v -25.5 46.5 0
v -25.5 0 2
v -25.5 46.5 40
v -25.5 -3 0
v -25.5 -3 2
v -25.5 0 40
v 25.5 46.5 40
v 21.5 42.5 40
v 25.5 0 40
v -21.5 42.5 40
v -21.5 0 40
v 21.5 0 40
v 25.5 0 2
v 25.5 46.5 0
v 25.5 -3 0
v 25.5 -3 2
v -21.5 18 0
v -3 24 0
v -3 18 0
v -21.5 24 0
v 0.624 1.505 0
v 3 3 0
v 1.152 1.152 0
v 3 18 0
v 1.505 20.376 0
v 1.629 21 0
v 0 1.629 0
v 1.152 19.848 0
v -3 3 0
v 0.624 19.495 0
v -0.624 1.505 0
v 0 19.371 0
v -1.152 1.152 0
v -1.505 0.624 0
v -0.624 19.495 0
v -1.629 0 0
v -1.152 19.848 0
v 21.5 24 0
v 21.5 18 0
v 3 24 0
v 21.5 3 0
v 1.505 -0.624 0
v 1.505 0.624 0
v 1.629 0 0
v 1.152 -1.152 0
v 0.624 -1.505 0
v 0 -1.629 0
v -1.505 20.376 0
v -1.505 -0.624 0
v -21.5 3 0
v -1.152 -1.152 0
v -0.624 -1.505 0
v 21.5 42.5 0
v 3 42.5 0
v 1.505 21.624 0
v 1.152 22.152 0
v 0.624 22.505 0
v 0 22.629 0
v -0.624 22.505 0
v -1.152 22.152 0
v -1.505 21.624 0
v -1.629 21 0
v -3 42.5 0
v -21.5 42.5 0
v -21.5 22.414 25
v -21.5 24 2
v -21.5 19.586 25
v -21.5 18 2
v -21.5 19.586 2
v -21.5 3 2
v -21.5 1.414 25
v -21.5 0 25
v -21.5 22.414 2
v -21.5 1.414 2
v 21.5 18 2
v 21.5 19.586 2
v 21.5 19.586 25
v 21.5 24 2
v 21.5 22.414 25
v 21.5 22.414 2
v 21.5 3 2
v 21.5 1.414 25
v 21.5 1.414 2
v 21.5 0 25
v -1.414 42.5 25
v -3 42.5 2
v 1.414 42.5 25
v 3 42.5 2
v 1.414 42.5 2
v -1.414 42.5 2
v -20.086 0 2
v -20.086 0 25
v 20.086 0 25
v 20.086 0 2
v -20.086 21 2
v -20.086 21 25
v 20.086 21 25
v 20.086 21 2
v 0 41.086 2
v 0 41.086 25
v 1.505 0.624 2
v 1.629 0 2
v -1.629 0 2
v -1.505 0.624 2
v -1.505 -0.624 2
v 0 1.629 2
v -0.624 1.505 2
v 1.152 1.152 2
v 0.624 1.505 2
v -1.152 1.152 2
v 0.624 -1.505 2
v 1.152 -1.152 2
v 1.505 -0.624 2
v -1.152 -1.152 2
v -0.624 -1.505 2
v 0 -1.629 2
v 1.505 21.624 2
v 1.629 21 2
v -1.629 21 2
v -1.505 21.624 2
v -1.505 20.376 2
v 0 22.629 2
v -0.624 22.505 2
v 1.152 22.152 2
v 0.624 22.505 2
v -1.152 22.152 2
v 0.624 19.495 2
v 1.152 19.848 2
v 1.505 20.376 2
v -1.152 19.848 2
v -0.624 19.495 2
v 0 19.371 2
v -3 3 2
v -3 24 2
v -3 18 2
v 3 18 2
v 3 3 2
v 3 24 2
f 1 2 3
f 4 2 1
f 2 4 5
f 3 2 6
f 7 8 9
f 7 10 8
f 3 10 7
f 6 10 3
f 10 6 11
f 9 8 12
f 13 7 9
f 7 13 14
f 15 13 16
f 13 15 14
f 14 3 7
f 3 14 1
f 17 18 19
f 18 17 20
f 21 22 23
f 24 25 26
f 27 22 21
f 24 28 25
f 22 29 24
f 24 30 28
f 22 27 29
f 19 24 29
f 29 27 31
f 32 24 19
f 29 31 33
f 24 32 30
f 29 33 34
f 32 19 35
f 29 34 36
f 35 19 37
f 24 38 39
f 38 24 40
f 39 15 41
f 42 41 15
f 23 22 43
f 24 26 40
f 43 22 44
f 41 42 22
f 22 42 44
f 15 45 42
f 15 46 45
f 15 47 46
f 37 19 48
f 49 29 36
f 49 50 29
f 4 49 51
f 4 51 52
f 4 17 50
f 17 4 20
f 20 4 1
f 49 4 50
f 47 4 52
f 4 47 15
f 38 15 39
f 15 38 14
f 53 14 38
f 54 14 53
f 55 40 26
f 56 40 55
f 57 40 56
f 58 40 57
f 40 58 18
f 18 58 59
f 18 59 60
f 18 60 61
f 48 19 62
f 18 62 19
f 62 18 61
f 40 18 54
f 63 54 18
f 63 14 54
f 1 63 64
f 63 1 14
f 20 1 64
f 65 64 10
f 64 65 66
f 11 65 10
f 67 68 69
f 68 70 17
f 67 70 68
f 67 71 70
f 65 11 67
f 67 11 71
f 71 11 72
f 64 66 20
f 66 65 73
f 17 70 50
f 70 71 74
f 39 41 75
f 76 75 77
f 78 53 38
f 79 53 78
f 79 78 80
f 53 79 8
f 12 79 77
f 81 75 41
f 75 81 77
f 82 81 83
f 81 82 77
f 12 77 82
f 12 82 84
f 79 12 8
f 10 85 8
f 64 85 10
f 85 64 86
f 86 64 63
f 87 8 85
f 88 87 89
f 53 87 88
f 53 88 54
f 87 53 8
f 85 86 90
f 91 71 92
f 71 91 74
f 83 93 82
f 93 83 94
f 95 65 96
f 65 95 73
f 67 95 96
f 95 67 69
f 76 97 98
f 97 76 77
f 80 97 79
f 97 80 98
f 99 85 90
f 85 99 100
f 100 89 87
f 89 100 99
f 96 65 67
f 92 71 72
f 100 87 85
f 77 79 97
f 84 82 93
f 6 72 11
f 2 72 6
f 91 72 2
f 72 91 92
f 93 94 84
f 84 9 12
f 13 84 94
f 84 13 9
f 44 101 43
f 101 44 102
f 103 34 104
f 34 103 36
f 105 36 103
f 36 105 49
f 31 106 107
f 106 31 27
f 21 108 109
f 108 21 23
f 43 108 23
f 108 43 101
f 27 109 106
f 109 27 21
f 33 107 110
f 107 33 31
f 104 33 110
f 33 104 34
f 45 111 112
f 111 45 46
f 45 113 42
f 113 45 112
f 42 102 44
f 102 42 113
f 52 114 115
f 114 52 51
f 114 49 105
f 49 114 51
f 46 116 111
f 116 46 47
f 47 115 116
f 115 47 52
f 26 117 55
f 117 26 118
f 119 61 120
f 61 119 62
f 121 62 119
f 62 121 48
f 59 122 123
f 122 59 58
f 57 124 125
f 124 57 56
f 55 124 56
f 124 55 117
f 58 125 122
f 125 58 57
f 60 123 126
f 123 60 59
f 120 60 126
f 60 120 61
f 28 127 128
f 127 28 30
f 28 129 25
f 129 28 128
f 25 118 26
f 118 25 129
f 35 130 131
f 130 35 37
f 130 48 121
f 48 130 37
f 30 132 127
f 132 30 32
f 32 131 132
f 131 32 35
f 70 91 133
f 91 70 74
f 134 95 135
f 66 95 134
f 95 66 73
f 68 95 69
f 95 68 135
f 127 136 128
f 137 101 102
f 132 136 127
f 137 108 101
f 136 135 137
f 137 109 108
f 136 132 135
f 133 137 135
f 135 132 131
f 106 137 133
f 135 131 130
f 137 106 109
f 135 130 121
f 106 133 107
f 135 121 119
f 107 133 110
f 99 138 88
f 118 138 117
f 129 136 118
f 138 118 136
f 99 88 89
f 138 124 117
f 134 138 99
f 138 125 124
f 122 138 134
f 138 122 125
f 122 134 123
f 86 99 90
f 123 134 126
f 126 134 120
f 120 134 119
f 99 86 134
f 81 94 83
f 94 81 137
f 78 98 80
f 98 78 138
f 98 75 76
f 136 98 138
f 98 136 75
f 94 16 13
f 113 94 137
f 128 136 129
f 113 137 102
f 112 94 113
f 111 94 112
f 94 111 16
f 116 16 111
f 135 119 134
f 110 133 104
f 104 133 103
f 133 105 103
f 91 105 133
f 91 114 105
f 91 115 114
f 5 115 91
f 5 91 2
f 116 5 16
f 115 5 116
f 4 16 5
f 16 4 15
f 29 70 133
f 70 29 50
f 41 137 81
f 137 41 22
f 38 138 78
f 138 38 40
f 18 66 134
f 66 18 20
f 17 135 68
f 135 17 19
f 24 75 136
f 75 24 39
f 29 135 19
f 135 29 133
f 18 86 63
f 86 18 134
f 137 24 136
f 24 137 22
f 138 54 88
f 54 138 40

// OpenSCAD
// file: jig.scad
use <bolts.scad>;
use <zcube.scad>;

// suitable for 688ZZ bearings
bearing_diameter = 16;
inner_diameter = bearing_diameter * 0.9;
bearing_depth = 5;

height = 25;

module bearing_cutout() {
	cylinder_outer(height, bearing_diameter/2);
//	cylinder_outer(bearing_depth, bearing_diameter/2);
//	translate([0, 0, height - bearing_depth]) cylinder_outer(bearing_depth, bearing_diameter/2);
}

module jig() {
	difference() {
		zcube([42, 42*2, height]);
		
		for (i=[-1.5:1.0:1.5]) {
			translate([42/4, i*(42/2), 0]) bearing_cutout(height);
			translate([-42/4, i*(42/2), 0]) bearing_cutout(height);
		}
		
		for (i=[-2:1.0:2]) {
			translate([0, i*(42/2), 0]) rotate([0, 0, 45]) zcube([2, 2, height]);
			translate([-42/2, i*(42/2), 0]) rotate([0, 0, 45]) zcube([2, 2, height]);
			translate([42/2, i*(42/2), 0]) rotate([0, 0, 45]) zcube([2, 2, height]);
		}
	}
}

jig();
// file: zcube.scad
// This function creates a cube with a given x/y either above (f=1) or below (f=-1) the z axis.
module zcube(dimensions, z=0, f=1, x=0, y=0, bom=false) {
	if (bom) {
		echo(bom, dimensions);
	}
	
	translate([x*dimensions[0]/2, y*dimensions[1]/2, dimensions[2]/2 * f + z]) cube(dimensions, true);
}

module zring(dimensions, thickness, z=0, f=1) {
	render() difference() {
		zcube([dimensions[0]+thickness/2, dimensions[1]+thickness/2, dimensions[2]], z=z, f=f);
		zcube([dimensions[0]-thickness/2, dimensions[1]-thickness/2, dimensions[2]], z=z, f=f);
	}
}

module rcube(dimensions, d, z=0, f=1) {
	dx = dimensions[0]/2 - d/2;
	dy = dimensions[1]/2 - d/2;
	dz = dimensions[2]/2 * (f-1) + z;
	
	hull() {
		translate([-dx, -dy, dz]) cylinder(h=dimensions[2], d=d);
		translate([-dx, dy, dz]) cylinder(h=dimensions[2], d=d);
		translate([dx, -dy, dz]) cylinder(h=dimensions[2], d=d);
		translate([dx, dy, dz]) cylinder(h=dimensions[2], d=d);
	}
}

module zcorners() {
	children();
	mirror([1, 0, 0]) children();
	
	mirror([0, 1, 0]) {
		children();
		mirror([1, 0, 0]) children();
	}
}
// file: bolts.scad
$radial_error = 0.1;
$fn = 16;

// This is for making holes.
module cylinder_outer(height, radius, fn=$fn) {
	fudge = 1/cos(180/fn);
	cylinder(h=height,r=radius*fudge+$radial_error, $fn=fn);
}

// This is for making things that fit in holes.
module cylinder_inner(height, radius, fn=$fn) {
	cylinder(h=height,r=radius-$radial_error,$fn=fn);
}

// Make a hole for a bolt/screw combination.
module bolt(diameter=3, depth=8, nut_offset=2, shaft_length=10, inset=10) {
	hole(diameter, depth, inset);
	hull() {
		shaft_width = diameter;
		translate([0, 0, nut_offset]) rotate(360/12, [0, 0, 1]) cylinder_outer(diameter, shaft_width, 6);
		translate([0, shaft_length, nut_offset]) rotate(360/12, [0, 0, 1]) cylinder_outer(diameter, shaft_width, 6);
	}
}

// Make a hole. The diameter is the size of the screw (e.g. 3 for M3). Depth is how far the hole should go for the thread, and inset is how far out there should be a hole for the head to go.
module hole(diameter=3, depth=6, inset=10) {
	cylinder_outer(depth, diameter/2);
	translate([0, 0, depth]) cylinder_outer(inset, diameter, 32);
}

module countersunk_hole(diameter=3, depth=6, inset=10) {
	hole(diameter, depth, inset);
	translate([0, 0, depth-diameter/2]) cylinder(r1=diameter/2+$radial_error, r2=diameter+$radial_error, h=diameter/2);
}

module mounting_hole(diameter=3, depth=6, inset=10, outset=3) {
	difference() {
		cylinder_outer(depth, diameter/2+outset);
		hole(diameter=diameter, depth=depth, inset=inset);
	}
}

rotate(90, [1, 0, 0]) difference() {
	cube([30, 10, 10]);
	translate([5, 5, 0]) bolt(diameter=3, depth=8);
	translate([15, 5, 0]) bolt(diameter=4, depth=8);
	translate([25, 5, 0]) countersunk_hole(diameter=4, depth=8);
}
// main file
use <bolts.scad>;
use <zcube.scad>;
use <jig.scad>;

height = 40;

thickness = 4;
tolerance = 0.5;

module alignment_bars() {
	difference() {
		union() {
			translate([0, 2*(42/2)+tolerance, 0]) rotate([0, 0, 45]) zcube([2, 2, height]);

			for (i=[0:1.0:1]) {
				translate([-42/2-tolerance, i*(42/2), 0]) rotate([0, 0, 45]) zcube([2, 2, height]);
				translate([42/2+tolerance, i*(42/2), 0]) rotate([0, 0, 45]) zcube([2, 2, height]);
			}
		}
		
		zcube([42+tolerance*2, 42*2+tolerance*2, height/2], z=25);
	}
}

module crossbeam() {
	difference() {
		union() {
			zcube([42+tolerance*2+thickness*2, 6, 2]);
			translate([0, 42/2, 0]) zcube([42+tolerance*2, 6, 2]);
			translate([0, 42/2, 0]) zcube([6, 42+tolerance*2+5, 2]);
		}
		
		hole(3);
		translate([0, 42/2, 0]) hole(3);
	}
}

render() difference() {
	inner_size = [42+tolerance*2, 42*2+tolerance*2, height];
	outer_size = [inner_size[0]+thickness*2, inner_size[1]+thickness*2, height];
	
	union() {
		difference() {
			zcube(outer_size);
			zcube(inner_size);
		}
		
		alignment_bars();
	}
	
	translate([0, -outer_size[1]/2, 0]) zcube(outer_size);
}

crossbeam();

// translate([0, 0, 2]) jig();
